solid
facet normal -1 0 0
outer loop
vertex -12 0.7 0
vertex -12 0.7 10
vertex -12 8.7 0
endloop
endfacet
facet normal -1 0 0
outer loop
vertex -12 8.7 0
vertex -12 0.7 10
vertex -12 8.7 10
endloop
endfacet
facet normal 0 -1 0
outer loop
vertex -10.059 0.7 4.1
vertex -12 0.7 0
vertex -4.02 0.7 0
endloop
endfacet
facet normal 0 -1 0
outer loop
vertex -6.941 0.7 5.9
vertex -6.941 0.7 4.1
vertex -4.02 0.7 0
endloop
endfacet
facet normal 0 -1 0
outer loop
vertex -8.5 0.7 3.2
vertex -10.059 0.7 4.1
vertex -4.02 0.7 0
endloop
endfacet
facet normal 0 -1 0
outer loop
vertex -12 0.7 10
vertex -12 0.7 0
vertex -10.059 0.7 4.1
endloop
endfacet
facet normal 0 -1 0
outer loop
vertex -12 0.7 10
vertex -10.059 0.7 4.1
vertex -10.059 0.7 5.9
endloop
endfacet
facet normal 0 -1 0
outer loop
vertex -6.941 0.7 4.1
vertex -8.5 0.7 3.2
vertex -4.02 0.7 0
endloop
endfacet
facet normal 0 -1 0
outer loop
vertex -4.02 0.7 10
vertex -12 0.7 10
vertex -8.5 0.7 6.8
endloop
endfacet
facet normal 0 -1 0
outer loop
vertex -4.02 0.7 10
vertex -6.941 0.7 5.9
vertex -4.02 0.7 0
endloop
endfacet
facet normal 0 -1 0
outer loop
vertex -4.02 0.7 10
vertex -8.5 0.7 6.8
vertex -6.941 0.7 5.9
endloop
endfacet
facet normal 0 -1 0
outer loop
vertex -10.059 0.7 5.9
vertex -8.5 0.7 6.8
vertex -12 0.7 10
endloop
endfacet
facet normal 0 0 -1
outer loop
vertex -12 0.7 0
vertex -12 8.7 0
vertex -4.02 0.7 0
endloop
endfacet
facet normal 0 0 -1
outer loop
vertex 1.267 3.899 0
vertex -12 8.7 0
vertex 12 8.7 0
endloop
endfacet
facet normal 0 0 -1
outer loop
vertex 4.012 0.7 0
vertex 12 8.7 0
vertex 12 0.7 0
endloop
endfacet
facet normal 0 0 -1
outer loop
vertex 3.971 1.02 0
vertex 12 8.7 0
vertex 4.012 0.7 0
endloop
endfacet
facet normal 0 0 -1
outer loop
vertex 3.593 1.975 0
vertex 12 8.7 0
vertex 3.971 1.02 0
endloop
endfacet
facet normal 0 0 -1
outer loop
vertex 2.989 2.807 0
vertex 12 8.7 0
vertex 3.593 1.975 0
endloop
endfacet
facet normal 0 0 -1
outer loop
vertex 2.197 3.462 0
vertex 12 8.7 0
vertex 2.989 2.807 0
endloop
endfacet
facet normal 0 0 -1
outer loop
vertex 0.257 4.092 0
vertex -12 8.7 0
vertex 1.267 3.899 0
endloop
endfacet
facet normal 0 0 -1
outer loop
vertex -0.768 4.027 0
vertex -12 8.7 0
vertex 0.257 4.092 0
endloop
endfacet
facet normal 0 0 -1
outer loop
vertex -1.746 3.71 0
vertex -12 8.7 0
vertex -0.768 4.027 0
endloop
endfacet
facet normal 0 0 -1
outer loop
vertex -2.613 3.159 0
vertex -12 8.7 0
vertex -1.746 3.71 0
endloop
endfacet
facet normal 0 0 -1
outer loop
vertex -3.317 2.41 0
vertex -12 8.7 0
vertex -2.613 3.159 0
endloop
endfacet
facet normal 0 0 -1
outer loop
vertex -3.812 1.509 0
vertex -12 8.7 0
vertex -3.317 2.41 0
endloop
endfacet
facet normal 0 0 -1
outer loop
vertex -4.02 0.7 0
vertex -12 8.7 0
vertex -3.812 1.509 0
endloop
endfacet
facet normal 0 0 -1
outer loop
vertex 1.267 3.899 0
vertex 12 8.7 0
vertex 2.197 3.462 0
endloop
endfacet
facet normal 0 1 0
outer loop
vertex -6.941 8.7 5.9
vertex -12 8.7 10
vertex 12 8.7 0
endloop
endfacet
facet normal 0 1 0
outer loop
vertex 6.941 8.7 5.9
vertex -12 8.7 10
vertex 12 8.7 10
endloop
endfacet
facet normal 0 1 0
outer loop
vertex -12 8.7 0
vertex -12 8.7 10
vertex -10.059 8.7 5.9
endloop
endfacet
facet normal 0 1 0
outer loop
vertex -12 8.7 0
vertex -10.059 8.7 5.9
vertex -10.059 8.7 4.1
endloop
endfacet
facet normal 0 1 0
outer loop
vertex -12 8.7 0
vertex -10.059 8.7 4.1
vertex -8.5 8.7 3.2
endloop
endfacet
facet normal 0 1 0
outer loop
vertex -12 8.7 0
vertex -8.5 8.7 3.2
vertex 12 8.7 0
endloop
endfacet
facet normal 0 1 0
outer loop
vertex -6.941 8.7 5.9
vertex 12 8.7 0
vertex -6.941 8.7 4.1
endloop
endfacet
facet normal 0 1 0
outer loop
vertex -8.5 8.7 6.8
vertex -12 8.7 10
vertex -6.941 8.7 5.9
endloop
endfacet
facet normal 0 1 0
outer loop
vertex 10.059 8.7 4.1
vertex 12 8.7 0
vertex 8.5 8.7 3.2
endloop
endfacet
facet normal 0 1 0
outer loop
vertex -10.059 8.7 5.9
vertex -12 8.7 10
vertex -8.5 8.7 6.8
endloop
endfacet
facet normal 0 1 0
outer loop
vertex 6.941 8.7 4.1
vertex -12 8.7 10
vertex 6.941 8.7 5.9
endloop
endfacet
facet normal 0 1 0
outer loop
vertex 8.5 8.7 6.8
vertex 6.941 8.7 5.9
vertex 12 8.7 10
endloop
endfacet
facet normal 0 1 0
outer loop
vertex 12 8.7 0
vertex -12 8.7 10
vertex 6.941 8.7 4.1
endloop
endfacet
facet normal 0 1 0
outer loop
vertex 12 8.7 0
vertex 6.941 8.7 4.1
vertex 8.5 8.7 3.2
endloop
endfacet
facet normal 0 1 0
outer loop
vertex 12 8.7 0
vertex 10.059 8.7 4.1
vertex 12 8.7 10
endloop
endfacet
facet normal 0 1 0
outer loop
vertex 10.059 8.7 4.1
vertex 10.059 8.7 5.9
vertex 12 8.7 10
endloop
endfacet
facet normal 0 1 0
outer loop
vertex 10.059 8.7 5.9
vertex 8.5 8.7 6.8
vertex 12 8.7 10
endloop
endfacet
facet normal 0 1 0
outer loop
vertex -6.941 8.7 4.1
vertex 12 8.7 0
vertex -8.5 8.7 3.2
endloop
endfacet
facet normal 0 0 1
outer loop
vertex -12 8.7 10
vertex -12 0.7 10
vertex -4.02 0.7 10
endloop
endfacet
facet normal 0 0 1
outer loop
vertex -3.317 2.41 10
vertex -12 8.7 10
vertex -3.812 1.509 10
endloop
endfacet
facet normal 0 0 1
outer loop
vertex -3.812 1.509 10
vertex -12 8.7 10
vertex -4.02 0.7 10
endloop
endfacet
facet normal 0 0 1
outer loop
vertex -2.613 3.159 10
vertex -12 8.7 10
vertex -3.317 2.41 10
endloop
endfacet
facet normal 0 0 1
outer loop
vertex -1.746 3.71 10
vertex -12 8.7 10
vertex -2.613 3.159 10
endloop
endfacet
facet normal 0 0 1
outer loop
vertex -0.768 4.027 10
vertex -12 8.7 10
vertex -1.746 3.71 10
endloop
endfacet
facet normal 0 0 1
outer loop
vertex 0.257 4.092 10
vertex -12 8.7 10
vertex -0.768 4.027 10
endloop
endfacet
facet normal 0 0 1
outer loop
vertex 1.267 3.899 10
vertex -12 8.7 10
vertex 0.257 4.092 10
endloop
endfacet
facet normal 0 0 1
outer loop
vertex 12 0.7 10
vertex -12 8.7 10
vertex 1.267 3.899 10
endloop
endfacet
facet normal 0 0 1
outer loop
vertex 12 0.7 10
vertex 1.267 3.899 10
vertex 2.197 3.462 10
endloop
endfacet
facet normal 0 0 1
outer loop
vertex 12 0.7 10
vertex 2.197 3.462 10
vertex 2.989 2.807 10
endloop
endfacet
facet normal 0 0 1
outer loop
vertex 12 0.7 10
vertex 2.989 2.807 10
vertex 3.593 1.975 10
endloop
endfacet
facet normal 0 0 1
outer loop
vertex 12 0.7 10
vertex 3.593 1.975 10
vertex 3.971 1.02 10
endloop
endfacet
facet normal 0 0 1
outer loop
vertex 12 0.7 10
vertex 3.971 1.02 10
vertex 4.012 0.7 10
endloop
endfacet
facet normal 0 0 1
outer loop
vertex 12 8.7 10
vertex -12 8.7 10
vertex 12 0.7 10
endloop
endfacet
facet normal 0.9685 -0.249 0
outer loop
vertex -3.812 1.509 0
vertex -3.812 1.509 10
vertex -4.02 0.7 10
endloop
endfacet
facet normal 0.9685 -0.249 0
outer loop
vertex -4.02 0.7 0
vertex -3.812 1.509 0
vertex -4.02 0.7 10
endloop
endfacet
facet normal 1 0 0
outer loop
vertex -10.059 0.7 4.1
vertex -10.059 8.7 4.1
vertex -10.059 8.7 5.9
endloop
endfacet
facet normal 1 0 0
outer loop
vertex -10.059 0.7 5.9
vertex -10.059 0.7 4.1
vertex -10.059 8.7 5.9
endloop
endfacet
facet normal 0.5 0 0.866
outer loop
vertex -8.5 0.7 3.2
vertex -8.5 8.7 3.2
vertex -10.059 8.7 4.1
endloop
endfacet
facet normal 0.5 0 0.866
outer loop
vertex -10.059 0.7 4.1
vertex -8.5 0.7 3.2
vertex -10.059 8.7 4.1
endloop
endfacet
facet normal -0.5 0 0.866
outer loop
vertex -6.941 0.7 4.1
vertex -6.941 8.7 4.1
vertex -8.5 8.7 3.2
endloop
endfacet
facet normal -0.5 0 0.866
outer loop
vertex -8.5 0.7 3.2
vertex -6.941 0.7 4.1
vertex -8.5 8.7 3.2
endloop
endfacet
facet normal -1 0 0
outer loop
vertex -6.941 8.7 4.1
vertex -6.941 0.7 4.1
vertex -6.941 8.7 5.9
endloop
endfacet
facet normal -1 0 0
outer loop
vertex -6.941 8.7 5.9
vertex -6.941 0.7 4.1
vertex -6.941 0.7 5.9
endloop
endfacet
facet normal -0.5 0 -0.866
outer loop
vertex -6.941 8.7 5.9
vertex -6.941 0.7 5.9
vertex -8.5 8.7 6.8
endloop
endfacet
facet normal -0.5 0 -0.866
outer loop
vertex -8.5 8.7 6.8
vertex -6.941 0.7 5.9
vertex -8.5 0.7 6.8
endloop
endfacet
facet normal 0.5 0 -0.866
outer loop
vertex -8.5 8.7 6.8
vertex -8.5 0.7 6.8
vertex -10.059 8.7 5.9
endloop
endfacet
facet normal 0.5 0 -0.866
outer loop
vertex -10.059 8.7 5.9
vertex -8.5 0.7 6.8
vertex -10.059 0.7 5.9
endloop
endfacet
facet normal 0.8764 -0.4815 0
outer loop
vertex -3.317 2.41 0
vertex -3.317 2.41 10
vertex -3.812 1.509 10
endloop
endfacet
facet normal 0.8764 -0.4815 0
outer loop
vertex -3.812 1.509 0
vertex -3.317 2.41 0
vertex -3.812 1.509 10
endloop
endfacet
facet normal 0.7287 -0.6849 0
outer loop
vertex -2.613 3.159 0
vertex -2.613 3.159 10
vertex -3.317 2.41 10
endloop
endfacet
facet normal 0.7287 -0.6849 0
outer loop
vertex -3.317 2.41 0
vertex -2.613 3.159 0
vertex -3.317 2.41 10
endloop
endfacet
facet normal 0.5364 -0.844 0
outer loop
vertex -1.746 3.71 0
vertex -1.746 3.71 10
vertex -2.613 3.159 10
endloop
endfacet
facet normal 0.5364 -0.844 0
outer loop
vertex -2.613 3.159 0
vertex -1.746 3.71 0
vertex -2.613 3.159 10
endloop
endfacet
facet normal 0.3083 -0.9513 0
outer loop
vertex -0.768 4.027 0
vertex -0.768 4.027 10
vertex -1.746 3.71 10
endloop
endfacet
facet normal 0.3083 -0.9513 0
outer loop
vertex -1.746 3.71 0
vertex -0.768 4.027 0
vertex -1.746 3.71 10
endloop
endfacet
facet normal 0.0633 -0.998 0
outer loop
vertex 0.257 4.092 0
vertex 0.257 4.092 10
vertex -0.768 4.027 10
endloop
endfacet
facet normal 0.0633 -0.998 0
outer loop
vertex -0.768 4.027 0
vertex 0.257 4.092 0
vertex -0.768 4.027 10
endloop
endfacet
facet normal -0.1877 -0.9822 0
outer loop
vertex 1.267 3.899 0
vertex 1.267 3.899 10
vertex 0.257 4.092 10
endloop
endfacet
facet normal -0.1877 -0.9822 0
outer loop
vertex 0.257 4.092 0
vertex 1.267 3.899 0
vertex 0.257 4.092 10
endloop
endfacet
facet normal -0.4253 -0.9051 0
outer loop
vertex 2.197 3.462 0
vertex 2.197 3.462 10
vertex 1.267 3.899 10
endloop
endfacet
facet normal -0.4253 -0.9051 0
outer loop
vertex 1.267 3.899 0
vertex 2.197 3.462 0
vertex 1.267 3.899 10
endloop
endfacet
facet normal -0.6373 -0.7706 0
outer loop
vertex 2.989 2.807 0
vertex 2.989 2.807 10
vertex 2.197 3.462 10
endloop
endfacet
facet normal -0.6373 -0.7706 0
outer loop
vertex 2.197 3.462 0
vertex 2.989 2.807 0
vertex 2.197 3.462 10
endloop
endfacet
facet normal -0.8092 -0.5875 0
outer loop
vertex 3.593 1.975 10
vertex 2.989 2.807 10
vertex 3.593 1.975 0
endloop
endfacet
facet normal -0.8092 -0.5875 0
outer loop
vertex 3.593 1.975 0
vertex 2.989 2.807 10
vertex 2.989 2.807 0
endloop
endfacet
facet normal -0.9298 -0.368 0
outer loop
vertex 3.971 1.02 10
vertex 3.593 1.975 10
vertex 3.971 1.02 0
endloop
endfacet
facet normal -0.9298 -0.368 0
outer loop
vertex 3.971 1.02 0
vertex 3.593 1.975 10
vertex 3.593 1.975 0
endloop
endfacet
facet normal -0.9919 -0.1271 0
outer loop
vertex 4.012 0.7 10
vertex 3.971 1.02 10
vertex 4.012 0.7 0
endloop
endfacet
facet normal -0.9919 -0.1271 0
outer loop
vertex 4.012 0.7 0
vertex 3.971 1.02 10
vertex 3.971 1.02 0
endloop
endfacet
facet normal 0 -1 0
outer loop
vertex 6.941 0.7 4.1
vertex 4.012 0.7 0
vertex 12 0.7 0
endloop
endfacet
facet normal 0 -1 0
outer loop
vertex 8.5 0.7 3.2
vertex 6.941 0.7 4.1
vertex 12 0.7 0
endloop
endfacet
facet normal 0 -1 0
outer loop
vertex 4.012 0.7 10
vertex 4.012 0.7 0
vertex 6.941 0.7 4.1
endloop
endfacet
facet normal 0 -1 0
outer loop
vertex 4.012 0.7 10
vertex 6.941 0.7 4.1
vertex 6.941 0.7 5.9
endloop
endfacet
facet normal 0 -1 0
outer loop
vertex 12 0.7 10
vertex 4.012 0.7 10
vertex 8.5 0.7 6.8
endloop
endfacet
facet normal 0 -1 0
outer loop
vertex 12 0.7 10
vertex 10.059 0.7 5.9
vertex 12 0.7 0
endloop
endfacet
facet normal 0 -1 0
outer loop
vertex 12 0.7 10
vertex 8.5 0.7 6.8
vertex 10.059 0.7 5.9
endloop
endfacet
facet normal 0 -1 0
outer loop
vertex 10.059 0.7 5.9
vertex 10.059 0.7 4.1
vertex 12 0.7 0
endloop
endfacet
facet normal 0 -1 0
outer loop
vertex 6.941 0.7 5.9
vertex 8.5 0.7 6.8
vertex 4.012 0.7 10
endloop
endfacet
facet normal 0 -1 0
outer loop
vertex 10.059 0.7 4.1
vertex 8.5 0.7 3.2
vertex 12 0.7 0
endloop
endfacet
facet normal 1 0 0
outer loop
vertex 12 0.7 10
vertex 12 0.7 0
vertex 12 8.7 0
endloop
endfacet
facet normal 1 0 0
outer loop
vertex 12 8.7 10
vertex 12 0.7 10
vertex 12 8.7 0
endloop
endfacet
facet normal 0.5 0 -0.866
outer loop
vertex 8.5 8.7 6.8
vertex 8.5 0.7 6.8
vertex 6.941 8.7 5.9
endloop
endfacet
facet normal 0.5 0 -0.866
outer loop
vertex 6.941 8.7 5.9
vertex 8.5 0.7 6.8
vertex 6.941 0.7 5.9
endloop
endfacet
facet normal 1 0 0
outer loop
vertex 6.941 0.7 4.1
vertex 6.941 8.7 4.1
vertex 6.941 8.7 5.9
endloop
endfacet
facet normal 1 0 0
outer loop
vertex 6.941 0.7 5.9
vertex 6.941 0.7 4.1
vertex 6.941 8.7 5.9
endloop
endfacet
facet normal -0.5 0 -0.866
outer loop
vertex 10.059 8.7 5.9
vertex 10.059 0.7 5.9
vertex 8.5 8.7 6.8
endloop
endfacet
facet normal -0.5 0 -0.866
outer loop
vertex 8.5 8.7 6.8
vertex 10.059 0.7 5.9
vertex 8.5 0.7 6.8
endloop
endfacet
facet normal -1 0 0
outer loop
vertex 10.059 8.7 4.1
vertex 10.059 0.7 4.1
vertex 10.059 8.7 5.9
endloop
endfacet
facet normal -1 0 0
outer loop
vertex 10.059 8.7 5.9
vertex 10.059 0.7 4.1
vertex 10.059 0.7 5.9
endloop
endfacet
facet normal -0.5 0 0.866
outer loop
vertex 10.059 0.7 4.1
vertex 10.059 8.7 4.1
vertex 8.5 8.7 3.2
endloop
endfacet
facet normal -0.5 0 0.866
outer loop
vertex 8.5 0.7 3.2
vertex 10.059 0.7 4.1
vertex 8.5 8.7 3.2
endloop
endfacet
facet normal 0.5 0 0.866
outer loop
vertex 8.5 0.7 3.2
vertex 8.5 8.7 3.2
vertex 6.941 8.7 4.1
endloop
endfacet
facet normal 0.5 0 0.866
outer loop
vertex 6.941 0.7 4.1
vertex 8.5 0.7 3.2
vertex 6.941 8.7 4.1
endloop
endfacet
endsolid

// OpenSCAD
difference(){
translate([-12,0.7,0])cube([24,8,10]);
translate([0,0,-1]) cylinder(r=4.1, h=20, $fn=25);
translate([8.5,10,5]) rotate([90,0,0]) rotate([0,0,30])  cylinder(r=1.8, h=20);
translate([-8.5,10,5]) rotate([90,0,0]) rotate([0,0,30])  cylinder(r=1.8, h=20);
}
